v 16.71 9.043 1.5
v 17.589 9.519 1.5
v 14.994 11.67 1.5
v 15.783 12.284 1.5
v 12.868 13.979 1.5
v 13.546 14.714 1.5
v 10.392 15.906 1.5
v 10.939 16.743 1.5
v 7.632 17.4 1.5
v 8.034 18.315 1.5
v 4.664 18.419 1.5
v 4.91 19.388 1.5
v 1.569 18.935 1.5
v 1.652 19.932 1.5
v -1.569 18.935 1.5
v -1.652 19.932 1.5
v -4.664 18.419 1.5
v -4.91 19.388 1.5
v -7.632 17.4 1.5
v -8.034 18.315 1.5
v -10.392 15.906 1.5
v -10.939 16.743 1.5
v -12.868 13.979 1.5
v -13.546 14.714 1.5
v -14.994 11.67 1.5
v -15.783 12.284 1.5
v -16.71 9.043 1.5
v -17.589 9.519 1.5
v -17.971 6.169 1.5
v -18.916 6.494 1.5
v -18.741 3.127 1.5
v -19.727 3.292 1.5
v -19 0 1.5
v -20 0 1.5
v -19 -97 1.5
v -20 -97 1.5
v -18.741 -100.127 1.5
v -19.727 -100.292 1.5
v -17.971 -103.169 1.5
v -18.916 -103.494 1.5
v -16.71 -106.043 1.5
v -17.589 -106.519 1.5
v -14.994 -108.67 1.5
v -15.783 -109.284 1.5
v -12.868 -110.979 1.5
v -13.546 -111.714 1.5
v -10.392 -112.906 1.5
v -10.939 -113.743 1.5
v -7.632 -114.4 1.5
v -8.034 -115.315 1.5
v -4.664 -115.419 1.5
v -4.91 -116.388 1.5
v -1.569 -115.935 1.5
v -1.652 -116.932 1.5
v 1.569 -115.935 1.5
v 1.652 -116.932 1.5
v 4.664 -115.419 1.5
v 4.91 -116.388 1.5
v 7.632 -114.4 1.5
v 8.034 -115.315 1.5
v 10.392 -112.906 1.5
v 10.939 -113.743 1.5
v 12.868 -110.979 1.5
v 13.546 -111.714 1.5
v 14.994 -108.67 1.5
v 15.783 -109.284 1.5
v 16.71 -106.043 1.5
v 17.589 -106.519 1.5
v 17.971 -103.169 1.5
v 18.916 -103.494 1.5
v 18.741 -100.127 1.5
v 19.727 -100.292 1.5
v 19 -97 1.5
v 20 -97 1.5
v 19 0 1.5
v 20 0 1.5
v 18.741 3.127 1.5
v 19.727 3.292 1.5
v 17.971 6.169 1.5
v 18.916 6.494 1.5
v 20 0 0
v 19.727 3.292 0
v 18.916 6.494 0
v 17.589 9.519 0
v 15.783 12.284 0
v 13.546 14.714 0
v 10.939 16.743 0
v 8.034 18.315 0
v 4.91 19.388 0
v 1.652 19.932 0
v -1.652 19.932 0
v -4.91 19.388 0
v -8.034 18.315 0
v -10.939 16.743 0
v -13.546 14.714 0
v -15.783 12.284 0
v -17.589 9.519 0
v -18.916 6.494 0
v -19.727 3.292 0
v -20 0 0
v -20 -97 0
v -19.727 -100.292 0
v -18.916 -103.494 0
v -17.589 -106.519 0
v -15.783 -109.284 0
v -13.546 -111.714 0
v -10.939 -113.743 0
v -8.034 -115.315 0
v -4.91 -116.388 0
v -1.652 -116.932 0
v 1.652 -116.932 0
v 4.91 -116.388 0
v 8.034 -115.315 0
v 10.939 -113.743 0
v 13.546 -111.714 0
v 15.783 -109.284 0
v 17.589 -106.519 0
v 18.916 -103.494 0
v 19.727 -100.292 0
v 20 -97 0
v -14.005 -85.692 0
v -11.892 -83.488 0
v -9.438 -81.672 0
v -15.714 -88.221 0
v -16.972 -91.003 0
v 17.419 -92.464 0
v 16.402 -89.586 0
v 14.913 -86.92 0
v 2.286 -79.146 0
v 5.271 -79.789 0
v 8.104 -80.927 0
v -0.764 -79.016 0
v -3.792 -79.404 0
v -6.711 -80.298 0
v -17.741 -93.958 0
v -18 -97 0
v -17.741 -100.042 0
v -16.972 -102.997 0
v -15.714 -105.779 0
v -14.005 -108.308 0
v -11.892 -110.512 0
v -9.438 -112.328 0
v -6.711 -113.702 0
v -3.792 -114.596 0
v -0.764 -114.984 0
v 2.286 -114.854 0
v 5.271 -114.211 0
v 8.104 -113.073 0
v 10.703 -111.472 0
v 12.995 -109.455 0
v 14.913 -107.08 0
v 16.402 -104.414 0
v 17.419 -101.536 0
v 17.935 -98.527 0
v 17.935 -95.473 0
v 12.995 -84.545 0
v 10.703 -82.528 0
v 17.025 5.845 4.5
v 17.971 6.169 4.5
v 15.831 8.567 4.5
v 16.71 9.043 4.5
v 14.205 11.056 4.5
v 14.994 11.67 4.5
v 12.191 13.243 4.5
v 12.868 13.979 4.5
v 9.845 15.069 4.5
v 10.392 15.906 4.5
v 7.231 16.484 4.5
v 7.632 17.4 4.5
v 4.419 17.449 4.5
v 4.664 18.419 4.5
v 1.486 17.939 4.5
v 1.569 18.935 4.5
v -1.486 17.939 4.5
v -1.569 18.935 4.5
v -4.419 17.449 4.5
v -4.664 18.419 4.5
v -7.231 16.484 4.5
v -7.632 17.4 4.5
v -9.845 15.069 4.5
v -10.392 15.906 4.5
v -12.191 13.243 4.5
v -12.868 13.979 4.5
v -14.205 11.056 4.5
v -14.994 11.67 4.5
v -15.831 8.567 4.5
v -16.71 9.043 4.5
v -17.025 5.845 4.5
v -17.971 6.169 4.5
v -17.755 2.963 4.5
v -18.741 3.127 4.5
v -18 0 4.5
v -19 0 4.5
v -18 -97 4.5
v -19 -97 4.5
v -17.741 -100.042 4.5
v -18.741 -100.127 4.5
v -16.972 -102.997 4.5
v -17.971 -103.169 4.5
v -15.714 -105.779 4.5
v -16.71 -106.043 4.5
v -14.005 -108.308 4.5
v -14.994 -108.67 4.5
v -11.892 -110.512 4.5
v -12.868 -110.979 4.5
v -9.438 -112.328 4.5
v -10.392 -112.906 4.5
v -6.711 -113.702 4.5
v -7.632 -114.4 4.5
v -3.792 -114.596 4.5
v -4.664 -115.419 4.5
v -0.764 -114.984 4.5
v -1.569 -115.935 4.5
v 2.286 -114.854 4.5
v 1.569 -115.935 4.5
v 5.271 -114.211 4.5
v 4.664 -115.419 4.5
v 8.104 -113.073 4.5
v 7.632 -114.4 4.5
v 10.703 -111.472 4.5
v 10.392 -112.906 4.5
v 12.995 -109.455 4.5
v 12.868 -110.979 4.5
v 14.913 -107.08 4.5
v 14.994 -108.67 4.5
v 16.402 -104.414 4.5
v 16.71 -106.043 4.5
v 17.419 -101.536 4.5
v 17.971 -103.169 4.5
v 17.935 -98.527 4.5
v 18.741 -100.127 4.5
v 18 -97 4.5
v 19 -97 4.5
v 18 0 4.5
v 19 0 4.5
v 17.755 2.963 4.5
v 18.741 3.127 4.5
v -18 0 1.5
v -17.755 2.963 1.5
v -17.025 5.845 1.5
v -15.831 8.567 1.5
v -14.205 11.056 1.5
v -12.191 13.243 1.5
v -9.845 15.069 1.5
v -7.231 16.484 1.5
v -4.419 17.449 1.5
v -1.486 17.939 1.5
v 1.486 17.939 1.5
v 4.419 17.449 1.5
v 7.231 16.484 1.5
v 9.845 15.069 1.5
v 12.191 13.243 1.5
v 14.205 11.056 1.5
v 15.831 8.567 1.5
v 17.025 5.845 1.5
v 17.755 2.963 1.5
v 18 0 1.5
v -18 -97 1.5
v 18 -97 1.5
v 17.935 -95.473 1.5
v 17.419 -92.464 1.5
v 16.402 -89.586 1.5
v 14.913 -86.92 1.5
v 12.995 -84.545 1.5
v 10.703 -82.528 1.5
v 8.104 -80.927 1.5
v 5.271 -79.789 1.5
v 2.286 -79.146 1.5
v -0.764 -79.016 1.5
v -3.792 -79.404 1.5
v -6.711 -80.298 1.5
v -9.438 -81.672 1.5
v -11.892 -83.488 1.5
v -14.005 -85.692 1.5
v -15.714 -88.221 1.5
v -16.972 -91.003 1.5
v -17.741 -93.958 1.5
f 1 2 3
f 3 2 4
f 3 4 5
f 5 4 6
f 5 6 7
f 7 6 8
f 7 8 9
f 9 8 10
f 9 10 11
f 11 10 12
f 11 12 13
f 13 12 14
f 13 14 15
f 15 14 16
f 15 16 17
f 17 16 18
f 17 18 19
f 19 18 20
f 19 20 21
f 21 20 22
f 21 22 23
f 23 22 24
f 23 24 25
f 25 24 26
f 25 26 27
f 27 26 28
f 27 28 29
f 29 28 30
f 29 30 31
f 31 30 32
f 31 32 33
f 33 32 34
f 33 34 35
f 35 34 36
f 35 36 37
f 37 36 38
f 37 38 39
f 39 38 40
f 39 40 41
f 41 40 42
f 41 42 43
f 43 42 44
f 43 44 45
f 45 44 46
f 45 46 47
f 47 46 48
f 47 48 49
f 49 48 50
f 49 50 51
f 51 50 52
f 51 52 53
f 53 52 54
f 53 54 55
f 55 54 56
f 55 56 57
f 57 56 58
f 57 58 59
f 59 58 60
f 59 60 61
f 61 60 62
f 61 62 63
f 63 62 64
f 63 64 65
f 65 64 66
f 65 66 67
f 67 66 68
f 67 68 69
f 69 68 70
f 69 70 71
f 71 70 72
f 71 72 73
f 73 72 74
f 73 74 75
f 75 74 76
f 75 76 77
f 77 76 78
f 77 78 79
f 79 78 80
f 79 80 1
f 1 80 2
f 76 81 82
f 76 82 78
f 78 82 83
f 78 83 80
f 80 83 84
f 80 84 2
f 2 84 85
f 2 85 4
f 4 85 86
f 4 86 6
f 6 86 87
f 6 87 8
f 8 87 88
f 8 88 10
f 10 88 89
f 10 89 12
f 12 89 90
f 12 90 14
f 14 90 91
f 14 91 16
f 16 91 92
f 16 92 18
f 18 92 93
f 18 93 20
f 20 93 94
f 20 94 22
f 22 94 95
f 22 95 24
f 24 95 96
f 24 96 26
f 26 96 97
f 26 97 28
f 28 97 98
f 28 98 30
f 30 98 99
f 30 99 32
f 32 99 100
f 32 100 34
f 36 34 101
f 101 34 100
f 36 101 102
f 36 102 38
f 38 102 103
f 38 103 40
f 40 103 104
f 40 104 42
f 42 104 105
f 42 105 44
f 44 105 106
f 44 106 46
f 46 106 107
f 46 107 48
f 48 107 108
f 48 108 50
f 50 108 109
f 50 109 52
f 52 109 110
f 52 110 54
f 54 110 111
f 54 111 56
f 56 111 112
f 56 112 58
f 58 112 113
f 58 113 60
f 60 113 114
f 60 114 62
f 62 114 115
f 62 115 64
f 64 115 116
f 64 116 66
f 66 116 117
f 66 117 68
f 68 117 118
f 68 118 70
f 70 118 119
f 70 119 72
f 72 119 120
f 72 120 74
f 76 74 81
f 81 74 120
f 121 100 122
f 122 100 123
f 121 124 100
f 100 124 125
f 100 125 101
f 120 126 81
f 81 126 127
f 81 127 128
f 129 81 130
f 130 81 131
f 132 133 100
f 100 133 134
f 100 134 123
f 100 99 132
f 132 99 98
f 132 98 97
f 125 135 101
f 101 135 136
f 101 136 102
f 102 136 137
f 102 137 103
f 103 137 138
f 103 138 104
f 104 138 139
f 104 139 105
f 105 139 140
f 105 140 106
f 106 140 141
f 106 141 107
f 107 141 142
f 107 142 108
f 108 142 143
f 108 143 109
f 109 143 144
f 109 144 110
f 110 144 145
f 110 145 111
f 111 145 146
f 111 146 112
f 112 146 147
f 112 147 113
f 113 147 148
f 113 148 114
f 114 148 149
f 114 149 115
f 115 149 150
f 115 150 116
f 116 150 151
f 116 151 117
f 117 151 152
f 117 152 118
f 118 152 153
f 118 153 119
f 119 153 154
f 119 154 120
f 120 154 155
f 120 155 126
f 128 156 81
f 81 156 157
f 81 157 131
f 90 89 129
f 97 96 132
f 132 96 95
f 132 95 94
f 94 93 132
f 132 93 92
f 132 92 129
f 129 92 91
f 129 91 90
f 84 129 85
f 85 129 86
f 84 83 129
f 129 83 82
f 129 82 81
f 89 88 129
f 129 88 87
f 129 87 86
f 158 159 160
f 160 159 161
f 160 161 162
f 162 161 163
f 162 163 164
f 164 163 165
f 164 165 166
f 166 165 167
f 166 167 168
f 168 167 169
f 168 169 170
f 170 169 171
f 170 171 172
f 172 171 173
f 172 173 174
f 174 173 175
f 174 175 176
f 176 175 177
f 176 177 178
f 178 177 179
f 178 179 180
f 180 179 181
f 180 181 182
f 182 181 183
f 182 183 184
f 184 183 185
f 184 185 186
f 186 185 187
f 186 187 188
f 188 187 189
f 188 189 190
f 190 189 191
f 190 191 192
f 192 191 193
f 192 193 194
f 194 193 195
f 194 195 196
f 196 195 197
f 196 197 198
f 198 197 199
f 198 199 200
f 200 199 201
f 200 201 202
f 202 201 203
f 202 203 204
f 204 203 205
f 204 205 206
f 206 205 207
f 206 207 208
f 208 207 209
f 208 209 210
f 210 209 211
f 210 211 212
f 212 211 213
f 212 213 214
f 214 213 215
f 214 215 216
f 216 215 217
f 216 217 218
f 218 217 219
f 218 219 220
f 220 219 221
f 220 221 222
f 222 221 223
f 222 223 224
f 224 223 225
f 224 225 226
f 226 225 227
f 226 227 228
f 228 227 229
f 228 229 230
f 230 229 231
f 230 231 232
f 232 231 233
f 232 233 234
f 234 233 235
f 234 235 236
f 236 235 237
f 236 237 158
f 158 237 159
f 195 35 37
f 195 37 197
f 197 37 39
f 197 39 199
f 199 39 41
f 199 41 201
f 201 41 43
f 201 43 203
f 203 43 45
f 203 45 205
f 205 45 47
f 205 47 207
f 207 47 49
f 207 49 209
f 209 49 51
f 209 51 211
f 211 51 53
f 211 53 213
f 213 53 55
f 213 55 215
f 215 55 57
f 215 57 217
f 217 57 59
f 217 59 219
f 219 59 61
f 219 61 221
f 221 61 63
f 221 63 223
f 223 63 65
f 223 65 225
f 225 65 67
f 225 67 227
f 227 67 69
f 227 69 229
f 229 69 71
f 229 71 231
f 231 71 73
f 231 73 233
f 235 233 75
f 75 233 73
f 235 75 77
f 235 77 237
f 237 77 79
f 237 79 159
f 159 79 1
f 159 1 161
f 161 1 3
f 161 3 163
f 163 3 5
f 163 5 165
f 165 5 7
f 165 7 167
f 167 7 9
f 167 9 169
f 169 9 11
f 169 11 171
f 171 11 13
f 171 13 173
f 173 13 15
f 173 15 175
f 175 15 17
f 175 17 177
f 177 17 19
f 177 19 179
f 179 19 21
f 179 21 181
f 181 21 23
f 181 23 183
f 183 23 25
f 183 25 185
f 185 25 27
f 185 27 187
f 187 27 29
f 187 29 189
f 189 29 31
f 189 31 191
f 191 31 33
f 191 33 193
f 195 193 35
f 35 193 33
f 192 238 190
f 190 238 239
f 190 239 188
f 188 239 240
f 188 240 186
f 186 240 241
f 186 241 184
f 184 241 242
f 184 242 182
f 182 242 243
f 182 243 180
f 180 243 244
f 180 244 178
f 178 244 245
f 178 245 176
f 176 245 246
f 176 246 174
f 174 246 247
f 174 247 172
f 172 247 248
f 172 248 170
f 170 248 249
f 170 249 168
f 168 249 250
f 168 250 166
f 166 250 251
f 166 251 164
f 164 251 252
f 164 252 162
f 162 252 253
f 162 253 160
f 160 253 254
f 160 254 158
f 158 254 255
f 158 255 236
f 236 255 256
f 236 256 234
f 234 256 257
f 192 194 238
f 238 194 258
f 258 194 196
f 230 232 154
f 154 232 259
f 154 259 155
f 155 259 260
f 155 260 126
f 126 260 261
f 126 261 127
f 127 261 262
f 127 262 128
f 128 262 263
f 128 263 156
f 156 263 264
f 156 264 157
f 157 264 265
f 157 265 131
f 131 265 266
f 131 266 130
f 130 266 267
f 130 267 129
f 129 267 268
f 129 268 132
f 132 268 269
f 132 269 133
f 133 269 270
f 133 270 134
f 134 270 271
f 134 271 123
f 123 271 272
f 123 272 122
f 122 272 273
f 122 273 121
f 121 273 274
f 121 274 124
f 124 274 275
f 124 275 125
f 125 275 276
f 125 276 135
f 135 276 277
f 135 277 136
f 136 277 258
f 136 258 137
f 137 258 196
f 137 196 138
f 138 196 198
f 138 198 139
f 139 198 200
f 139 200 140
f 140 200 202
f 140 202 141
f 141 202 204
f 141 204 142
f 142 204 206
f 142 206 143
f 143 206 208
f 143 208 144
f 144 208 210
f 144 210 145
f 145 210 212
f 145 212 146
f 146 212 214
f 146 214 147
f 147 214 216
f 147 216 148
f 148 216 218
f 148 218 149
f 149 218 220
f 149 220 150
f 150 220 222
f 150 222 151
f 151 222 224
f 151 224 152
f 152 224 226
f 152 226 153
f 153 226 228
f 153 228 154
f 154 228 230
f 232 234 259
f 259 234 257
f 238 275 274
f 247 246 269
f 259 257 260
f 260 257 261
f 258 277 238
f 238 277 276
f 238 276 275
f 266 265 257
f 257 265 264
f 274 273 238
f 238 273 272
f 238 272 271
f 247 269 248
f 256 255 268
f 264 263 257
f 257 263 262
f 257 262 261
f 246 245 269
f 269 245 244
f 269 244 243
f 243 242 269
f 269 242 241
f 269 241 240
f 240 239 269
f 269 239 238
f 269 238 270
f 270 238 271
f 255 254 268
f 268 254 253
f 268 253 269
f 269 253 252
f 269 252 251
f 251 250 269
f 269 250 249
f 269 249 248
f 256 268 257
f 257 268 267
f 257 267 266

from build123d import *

# Parameters (mm, degrees)
BOSS_EXTRUDE1_DEPTH = 1.5
BOSS_EXTRUDE2_DEPTH = 3
SKETCH6_R           = 18
CUT_EXTRUDE1_DEPTH  = 119.782364011


with BuildPart() as part:
    # Sketch3 → Boss-Extrude1 (new body)
    with BuildSketch(Plane.XY):
        with BuildLine():
            Line((-20, 0), (-20, -97))
            ThreePointArc((-20, -97), (0, -117), (20, -97))
            Line((20, -97), (20, 0))
            ThreePointArc((20, 0), (0, 20), (-20, 0))
        make_face()
    extrude(amount=BOSS_EXTRUDE1_DEPTH)

    # Sketch5 → Boss-Extrude2 (add)
    with BuildSketch(Plane.XY.offset(1.5)):
        with BuildLine():
            Line((-19, 0), (-19, -97))
            ThreePointArc((-19, -97), (0, -116), (19, -97))
            Line((19, -97), (19, 0))
            ThreePointArc((19, 0), (0, 19), (-19, 0))
        make_face()
        with BuildLine():
            Line((-18, 0), (-18, -97))
            ThreePointArc((-18, -97), (0, -115), (18, -97))
            Line((18, -97), (18, 0))
            ThreePointArc((18, 0), (0, 18), (-18, 0))
        make_face(mode=Mode.SUBTRACT)
    extrude(amount=BOSS_EXTRUDE2_DEPTH)

    # Sketch6 → Cut-Extrude1 (cut, through all)
    with BuildSketch(Plane(origin=(0, 0, 0), x_dir=(-1, 0, 0), z_dir=(0, 0, -1))):
        with Locations((0, -97)):
            Circle(SKETCH6_R)
    extrude(amount=-CUT_EXTRUDE1_DEPTH, mode=Mode.SUBTRACT)


solid = part.part
